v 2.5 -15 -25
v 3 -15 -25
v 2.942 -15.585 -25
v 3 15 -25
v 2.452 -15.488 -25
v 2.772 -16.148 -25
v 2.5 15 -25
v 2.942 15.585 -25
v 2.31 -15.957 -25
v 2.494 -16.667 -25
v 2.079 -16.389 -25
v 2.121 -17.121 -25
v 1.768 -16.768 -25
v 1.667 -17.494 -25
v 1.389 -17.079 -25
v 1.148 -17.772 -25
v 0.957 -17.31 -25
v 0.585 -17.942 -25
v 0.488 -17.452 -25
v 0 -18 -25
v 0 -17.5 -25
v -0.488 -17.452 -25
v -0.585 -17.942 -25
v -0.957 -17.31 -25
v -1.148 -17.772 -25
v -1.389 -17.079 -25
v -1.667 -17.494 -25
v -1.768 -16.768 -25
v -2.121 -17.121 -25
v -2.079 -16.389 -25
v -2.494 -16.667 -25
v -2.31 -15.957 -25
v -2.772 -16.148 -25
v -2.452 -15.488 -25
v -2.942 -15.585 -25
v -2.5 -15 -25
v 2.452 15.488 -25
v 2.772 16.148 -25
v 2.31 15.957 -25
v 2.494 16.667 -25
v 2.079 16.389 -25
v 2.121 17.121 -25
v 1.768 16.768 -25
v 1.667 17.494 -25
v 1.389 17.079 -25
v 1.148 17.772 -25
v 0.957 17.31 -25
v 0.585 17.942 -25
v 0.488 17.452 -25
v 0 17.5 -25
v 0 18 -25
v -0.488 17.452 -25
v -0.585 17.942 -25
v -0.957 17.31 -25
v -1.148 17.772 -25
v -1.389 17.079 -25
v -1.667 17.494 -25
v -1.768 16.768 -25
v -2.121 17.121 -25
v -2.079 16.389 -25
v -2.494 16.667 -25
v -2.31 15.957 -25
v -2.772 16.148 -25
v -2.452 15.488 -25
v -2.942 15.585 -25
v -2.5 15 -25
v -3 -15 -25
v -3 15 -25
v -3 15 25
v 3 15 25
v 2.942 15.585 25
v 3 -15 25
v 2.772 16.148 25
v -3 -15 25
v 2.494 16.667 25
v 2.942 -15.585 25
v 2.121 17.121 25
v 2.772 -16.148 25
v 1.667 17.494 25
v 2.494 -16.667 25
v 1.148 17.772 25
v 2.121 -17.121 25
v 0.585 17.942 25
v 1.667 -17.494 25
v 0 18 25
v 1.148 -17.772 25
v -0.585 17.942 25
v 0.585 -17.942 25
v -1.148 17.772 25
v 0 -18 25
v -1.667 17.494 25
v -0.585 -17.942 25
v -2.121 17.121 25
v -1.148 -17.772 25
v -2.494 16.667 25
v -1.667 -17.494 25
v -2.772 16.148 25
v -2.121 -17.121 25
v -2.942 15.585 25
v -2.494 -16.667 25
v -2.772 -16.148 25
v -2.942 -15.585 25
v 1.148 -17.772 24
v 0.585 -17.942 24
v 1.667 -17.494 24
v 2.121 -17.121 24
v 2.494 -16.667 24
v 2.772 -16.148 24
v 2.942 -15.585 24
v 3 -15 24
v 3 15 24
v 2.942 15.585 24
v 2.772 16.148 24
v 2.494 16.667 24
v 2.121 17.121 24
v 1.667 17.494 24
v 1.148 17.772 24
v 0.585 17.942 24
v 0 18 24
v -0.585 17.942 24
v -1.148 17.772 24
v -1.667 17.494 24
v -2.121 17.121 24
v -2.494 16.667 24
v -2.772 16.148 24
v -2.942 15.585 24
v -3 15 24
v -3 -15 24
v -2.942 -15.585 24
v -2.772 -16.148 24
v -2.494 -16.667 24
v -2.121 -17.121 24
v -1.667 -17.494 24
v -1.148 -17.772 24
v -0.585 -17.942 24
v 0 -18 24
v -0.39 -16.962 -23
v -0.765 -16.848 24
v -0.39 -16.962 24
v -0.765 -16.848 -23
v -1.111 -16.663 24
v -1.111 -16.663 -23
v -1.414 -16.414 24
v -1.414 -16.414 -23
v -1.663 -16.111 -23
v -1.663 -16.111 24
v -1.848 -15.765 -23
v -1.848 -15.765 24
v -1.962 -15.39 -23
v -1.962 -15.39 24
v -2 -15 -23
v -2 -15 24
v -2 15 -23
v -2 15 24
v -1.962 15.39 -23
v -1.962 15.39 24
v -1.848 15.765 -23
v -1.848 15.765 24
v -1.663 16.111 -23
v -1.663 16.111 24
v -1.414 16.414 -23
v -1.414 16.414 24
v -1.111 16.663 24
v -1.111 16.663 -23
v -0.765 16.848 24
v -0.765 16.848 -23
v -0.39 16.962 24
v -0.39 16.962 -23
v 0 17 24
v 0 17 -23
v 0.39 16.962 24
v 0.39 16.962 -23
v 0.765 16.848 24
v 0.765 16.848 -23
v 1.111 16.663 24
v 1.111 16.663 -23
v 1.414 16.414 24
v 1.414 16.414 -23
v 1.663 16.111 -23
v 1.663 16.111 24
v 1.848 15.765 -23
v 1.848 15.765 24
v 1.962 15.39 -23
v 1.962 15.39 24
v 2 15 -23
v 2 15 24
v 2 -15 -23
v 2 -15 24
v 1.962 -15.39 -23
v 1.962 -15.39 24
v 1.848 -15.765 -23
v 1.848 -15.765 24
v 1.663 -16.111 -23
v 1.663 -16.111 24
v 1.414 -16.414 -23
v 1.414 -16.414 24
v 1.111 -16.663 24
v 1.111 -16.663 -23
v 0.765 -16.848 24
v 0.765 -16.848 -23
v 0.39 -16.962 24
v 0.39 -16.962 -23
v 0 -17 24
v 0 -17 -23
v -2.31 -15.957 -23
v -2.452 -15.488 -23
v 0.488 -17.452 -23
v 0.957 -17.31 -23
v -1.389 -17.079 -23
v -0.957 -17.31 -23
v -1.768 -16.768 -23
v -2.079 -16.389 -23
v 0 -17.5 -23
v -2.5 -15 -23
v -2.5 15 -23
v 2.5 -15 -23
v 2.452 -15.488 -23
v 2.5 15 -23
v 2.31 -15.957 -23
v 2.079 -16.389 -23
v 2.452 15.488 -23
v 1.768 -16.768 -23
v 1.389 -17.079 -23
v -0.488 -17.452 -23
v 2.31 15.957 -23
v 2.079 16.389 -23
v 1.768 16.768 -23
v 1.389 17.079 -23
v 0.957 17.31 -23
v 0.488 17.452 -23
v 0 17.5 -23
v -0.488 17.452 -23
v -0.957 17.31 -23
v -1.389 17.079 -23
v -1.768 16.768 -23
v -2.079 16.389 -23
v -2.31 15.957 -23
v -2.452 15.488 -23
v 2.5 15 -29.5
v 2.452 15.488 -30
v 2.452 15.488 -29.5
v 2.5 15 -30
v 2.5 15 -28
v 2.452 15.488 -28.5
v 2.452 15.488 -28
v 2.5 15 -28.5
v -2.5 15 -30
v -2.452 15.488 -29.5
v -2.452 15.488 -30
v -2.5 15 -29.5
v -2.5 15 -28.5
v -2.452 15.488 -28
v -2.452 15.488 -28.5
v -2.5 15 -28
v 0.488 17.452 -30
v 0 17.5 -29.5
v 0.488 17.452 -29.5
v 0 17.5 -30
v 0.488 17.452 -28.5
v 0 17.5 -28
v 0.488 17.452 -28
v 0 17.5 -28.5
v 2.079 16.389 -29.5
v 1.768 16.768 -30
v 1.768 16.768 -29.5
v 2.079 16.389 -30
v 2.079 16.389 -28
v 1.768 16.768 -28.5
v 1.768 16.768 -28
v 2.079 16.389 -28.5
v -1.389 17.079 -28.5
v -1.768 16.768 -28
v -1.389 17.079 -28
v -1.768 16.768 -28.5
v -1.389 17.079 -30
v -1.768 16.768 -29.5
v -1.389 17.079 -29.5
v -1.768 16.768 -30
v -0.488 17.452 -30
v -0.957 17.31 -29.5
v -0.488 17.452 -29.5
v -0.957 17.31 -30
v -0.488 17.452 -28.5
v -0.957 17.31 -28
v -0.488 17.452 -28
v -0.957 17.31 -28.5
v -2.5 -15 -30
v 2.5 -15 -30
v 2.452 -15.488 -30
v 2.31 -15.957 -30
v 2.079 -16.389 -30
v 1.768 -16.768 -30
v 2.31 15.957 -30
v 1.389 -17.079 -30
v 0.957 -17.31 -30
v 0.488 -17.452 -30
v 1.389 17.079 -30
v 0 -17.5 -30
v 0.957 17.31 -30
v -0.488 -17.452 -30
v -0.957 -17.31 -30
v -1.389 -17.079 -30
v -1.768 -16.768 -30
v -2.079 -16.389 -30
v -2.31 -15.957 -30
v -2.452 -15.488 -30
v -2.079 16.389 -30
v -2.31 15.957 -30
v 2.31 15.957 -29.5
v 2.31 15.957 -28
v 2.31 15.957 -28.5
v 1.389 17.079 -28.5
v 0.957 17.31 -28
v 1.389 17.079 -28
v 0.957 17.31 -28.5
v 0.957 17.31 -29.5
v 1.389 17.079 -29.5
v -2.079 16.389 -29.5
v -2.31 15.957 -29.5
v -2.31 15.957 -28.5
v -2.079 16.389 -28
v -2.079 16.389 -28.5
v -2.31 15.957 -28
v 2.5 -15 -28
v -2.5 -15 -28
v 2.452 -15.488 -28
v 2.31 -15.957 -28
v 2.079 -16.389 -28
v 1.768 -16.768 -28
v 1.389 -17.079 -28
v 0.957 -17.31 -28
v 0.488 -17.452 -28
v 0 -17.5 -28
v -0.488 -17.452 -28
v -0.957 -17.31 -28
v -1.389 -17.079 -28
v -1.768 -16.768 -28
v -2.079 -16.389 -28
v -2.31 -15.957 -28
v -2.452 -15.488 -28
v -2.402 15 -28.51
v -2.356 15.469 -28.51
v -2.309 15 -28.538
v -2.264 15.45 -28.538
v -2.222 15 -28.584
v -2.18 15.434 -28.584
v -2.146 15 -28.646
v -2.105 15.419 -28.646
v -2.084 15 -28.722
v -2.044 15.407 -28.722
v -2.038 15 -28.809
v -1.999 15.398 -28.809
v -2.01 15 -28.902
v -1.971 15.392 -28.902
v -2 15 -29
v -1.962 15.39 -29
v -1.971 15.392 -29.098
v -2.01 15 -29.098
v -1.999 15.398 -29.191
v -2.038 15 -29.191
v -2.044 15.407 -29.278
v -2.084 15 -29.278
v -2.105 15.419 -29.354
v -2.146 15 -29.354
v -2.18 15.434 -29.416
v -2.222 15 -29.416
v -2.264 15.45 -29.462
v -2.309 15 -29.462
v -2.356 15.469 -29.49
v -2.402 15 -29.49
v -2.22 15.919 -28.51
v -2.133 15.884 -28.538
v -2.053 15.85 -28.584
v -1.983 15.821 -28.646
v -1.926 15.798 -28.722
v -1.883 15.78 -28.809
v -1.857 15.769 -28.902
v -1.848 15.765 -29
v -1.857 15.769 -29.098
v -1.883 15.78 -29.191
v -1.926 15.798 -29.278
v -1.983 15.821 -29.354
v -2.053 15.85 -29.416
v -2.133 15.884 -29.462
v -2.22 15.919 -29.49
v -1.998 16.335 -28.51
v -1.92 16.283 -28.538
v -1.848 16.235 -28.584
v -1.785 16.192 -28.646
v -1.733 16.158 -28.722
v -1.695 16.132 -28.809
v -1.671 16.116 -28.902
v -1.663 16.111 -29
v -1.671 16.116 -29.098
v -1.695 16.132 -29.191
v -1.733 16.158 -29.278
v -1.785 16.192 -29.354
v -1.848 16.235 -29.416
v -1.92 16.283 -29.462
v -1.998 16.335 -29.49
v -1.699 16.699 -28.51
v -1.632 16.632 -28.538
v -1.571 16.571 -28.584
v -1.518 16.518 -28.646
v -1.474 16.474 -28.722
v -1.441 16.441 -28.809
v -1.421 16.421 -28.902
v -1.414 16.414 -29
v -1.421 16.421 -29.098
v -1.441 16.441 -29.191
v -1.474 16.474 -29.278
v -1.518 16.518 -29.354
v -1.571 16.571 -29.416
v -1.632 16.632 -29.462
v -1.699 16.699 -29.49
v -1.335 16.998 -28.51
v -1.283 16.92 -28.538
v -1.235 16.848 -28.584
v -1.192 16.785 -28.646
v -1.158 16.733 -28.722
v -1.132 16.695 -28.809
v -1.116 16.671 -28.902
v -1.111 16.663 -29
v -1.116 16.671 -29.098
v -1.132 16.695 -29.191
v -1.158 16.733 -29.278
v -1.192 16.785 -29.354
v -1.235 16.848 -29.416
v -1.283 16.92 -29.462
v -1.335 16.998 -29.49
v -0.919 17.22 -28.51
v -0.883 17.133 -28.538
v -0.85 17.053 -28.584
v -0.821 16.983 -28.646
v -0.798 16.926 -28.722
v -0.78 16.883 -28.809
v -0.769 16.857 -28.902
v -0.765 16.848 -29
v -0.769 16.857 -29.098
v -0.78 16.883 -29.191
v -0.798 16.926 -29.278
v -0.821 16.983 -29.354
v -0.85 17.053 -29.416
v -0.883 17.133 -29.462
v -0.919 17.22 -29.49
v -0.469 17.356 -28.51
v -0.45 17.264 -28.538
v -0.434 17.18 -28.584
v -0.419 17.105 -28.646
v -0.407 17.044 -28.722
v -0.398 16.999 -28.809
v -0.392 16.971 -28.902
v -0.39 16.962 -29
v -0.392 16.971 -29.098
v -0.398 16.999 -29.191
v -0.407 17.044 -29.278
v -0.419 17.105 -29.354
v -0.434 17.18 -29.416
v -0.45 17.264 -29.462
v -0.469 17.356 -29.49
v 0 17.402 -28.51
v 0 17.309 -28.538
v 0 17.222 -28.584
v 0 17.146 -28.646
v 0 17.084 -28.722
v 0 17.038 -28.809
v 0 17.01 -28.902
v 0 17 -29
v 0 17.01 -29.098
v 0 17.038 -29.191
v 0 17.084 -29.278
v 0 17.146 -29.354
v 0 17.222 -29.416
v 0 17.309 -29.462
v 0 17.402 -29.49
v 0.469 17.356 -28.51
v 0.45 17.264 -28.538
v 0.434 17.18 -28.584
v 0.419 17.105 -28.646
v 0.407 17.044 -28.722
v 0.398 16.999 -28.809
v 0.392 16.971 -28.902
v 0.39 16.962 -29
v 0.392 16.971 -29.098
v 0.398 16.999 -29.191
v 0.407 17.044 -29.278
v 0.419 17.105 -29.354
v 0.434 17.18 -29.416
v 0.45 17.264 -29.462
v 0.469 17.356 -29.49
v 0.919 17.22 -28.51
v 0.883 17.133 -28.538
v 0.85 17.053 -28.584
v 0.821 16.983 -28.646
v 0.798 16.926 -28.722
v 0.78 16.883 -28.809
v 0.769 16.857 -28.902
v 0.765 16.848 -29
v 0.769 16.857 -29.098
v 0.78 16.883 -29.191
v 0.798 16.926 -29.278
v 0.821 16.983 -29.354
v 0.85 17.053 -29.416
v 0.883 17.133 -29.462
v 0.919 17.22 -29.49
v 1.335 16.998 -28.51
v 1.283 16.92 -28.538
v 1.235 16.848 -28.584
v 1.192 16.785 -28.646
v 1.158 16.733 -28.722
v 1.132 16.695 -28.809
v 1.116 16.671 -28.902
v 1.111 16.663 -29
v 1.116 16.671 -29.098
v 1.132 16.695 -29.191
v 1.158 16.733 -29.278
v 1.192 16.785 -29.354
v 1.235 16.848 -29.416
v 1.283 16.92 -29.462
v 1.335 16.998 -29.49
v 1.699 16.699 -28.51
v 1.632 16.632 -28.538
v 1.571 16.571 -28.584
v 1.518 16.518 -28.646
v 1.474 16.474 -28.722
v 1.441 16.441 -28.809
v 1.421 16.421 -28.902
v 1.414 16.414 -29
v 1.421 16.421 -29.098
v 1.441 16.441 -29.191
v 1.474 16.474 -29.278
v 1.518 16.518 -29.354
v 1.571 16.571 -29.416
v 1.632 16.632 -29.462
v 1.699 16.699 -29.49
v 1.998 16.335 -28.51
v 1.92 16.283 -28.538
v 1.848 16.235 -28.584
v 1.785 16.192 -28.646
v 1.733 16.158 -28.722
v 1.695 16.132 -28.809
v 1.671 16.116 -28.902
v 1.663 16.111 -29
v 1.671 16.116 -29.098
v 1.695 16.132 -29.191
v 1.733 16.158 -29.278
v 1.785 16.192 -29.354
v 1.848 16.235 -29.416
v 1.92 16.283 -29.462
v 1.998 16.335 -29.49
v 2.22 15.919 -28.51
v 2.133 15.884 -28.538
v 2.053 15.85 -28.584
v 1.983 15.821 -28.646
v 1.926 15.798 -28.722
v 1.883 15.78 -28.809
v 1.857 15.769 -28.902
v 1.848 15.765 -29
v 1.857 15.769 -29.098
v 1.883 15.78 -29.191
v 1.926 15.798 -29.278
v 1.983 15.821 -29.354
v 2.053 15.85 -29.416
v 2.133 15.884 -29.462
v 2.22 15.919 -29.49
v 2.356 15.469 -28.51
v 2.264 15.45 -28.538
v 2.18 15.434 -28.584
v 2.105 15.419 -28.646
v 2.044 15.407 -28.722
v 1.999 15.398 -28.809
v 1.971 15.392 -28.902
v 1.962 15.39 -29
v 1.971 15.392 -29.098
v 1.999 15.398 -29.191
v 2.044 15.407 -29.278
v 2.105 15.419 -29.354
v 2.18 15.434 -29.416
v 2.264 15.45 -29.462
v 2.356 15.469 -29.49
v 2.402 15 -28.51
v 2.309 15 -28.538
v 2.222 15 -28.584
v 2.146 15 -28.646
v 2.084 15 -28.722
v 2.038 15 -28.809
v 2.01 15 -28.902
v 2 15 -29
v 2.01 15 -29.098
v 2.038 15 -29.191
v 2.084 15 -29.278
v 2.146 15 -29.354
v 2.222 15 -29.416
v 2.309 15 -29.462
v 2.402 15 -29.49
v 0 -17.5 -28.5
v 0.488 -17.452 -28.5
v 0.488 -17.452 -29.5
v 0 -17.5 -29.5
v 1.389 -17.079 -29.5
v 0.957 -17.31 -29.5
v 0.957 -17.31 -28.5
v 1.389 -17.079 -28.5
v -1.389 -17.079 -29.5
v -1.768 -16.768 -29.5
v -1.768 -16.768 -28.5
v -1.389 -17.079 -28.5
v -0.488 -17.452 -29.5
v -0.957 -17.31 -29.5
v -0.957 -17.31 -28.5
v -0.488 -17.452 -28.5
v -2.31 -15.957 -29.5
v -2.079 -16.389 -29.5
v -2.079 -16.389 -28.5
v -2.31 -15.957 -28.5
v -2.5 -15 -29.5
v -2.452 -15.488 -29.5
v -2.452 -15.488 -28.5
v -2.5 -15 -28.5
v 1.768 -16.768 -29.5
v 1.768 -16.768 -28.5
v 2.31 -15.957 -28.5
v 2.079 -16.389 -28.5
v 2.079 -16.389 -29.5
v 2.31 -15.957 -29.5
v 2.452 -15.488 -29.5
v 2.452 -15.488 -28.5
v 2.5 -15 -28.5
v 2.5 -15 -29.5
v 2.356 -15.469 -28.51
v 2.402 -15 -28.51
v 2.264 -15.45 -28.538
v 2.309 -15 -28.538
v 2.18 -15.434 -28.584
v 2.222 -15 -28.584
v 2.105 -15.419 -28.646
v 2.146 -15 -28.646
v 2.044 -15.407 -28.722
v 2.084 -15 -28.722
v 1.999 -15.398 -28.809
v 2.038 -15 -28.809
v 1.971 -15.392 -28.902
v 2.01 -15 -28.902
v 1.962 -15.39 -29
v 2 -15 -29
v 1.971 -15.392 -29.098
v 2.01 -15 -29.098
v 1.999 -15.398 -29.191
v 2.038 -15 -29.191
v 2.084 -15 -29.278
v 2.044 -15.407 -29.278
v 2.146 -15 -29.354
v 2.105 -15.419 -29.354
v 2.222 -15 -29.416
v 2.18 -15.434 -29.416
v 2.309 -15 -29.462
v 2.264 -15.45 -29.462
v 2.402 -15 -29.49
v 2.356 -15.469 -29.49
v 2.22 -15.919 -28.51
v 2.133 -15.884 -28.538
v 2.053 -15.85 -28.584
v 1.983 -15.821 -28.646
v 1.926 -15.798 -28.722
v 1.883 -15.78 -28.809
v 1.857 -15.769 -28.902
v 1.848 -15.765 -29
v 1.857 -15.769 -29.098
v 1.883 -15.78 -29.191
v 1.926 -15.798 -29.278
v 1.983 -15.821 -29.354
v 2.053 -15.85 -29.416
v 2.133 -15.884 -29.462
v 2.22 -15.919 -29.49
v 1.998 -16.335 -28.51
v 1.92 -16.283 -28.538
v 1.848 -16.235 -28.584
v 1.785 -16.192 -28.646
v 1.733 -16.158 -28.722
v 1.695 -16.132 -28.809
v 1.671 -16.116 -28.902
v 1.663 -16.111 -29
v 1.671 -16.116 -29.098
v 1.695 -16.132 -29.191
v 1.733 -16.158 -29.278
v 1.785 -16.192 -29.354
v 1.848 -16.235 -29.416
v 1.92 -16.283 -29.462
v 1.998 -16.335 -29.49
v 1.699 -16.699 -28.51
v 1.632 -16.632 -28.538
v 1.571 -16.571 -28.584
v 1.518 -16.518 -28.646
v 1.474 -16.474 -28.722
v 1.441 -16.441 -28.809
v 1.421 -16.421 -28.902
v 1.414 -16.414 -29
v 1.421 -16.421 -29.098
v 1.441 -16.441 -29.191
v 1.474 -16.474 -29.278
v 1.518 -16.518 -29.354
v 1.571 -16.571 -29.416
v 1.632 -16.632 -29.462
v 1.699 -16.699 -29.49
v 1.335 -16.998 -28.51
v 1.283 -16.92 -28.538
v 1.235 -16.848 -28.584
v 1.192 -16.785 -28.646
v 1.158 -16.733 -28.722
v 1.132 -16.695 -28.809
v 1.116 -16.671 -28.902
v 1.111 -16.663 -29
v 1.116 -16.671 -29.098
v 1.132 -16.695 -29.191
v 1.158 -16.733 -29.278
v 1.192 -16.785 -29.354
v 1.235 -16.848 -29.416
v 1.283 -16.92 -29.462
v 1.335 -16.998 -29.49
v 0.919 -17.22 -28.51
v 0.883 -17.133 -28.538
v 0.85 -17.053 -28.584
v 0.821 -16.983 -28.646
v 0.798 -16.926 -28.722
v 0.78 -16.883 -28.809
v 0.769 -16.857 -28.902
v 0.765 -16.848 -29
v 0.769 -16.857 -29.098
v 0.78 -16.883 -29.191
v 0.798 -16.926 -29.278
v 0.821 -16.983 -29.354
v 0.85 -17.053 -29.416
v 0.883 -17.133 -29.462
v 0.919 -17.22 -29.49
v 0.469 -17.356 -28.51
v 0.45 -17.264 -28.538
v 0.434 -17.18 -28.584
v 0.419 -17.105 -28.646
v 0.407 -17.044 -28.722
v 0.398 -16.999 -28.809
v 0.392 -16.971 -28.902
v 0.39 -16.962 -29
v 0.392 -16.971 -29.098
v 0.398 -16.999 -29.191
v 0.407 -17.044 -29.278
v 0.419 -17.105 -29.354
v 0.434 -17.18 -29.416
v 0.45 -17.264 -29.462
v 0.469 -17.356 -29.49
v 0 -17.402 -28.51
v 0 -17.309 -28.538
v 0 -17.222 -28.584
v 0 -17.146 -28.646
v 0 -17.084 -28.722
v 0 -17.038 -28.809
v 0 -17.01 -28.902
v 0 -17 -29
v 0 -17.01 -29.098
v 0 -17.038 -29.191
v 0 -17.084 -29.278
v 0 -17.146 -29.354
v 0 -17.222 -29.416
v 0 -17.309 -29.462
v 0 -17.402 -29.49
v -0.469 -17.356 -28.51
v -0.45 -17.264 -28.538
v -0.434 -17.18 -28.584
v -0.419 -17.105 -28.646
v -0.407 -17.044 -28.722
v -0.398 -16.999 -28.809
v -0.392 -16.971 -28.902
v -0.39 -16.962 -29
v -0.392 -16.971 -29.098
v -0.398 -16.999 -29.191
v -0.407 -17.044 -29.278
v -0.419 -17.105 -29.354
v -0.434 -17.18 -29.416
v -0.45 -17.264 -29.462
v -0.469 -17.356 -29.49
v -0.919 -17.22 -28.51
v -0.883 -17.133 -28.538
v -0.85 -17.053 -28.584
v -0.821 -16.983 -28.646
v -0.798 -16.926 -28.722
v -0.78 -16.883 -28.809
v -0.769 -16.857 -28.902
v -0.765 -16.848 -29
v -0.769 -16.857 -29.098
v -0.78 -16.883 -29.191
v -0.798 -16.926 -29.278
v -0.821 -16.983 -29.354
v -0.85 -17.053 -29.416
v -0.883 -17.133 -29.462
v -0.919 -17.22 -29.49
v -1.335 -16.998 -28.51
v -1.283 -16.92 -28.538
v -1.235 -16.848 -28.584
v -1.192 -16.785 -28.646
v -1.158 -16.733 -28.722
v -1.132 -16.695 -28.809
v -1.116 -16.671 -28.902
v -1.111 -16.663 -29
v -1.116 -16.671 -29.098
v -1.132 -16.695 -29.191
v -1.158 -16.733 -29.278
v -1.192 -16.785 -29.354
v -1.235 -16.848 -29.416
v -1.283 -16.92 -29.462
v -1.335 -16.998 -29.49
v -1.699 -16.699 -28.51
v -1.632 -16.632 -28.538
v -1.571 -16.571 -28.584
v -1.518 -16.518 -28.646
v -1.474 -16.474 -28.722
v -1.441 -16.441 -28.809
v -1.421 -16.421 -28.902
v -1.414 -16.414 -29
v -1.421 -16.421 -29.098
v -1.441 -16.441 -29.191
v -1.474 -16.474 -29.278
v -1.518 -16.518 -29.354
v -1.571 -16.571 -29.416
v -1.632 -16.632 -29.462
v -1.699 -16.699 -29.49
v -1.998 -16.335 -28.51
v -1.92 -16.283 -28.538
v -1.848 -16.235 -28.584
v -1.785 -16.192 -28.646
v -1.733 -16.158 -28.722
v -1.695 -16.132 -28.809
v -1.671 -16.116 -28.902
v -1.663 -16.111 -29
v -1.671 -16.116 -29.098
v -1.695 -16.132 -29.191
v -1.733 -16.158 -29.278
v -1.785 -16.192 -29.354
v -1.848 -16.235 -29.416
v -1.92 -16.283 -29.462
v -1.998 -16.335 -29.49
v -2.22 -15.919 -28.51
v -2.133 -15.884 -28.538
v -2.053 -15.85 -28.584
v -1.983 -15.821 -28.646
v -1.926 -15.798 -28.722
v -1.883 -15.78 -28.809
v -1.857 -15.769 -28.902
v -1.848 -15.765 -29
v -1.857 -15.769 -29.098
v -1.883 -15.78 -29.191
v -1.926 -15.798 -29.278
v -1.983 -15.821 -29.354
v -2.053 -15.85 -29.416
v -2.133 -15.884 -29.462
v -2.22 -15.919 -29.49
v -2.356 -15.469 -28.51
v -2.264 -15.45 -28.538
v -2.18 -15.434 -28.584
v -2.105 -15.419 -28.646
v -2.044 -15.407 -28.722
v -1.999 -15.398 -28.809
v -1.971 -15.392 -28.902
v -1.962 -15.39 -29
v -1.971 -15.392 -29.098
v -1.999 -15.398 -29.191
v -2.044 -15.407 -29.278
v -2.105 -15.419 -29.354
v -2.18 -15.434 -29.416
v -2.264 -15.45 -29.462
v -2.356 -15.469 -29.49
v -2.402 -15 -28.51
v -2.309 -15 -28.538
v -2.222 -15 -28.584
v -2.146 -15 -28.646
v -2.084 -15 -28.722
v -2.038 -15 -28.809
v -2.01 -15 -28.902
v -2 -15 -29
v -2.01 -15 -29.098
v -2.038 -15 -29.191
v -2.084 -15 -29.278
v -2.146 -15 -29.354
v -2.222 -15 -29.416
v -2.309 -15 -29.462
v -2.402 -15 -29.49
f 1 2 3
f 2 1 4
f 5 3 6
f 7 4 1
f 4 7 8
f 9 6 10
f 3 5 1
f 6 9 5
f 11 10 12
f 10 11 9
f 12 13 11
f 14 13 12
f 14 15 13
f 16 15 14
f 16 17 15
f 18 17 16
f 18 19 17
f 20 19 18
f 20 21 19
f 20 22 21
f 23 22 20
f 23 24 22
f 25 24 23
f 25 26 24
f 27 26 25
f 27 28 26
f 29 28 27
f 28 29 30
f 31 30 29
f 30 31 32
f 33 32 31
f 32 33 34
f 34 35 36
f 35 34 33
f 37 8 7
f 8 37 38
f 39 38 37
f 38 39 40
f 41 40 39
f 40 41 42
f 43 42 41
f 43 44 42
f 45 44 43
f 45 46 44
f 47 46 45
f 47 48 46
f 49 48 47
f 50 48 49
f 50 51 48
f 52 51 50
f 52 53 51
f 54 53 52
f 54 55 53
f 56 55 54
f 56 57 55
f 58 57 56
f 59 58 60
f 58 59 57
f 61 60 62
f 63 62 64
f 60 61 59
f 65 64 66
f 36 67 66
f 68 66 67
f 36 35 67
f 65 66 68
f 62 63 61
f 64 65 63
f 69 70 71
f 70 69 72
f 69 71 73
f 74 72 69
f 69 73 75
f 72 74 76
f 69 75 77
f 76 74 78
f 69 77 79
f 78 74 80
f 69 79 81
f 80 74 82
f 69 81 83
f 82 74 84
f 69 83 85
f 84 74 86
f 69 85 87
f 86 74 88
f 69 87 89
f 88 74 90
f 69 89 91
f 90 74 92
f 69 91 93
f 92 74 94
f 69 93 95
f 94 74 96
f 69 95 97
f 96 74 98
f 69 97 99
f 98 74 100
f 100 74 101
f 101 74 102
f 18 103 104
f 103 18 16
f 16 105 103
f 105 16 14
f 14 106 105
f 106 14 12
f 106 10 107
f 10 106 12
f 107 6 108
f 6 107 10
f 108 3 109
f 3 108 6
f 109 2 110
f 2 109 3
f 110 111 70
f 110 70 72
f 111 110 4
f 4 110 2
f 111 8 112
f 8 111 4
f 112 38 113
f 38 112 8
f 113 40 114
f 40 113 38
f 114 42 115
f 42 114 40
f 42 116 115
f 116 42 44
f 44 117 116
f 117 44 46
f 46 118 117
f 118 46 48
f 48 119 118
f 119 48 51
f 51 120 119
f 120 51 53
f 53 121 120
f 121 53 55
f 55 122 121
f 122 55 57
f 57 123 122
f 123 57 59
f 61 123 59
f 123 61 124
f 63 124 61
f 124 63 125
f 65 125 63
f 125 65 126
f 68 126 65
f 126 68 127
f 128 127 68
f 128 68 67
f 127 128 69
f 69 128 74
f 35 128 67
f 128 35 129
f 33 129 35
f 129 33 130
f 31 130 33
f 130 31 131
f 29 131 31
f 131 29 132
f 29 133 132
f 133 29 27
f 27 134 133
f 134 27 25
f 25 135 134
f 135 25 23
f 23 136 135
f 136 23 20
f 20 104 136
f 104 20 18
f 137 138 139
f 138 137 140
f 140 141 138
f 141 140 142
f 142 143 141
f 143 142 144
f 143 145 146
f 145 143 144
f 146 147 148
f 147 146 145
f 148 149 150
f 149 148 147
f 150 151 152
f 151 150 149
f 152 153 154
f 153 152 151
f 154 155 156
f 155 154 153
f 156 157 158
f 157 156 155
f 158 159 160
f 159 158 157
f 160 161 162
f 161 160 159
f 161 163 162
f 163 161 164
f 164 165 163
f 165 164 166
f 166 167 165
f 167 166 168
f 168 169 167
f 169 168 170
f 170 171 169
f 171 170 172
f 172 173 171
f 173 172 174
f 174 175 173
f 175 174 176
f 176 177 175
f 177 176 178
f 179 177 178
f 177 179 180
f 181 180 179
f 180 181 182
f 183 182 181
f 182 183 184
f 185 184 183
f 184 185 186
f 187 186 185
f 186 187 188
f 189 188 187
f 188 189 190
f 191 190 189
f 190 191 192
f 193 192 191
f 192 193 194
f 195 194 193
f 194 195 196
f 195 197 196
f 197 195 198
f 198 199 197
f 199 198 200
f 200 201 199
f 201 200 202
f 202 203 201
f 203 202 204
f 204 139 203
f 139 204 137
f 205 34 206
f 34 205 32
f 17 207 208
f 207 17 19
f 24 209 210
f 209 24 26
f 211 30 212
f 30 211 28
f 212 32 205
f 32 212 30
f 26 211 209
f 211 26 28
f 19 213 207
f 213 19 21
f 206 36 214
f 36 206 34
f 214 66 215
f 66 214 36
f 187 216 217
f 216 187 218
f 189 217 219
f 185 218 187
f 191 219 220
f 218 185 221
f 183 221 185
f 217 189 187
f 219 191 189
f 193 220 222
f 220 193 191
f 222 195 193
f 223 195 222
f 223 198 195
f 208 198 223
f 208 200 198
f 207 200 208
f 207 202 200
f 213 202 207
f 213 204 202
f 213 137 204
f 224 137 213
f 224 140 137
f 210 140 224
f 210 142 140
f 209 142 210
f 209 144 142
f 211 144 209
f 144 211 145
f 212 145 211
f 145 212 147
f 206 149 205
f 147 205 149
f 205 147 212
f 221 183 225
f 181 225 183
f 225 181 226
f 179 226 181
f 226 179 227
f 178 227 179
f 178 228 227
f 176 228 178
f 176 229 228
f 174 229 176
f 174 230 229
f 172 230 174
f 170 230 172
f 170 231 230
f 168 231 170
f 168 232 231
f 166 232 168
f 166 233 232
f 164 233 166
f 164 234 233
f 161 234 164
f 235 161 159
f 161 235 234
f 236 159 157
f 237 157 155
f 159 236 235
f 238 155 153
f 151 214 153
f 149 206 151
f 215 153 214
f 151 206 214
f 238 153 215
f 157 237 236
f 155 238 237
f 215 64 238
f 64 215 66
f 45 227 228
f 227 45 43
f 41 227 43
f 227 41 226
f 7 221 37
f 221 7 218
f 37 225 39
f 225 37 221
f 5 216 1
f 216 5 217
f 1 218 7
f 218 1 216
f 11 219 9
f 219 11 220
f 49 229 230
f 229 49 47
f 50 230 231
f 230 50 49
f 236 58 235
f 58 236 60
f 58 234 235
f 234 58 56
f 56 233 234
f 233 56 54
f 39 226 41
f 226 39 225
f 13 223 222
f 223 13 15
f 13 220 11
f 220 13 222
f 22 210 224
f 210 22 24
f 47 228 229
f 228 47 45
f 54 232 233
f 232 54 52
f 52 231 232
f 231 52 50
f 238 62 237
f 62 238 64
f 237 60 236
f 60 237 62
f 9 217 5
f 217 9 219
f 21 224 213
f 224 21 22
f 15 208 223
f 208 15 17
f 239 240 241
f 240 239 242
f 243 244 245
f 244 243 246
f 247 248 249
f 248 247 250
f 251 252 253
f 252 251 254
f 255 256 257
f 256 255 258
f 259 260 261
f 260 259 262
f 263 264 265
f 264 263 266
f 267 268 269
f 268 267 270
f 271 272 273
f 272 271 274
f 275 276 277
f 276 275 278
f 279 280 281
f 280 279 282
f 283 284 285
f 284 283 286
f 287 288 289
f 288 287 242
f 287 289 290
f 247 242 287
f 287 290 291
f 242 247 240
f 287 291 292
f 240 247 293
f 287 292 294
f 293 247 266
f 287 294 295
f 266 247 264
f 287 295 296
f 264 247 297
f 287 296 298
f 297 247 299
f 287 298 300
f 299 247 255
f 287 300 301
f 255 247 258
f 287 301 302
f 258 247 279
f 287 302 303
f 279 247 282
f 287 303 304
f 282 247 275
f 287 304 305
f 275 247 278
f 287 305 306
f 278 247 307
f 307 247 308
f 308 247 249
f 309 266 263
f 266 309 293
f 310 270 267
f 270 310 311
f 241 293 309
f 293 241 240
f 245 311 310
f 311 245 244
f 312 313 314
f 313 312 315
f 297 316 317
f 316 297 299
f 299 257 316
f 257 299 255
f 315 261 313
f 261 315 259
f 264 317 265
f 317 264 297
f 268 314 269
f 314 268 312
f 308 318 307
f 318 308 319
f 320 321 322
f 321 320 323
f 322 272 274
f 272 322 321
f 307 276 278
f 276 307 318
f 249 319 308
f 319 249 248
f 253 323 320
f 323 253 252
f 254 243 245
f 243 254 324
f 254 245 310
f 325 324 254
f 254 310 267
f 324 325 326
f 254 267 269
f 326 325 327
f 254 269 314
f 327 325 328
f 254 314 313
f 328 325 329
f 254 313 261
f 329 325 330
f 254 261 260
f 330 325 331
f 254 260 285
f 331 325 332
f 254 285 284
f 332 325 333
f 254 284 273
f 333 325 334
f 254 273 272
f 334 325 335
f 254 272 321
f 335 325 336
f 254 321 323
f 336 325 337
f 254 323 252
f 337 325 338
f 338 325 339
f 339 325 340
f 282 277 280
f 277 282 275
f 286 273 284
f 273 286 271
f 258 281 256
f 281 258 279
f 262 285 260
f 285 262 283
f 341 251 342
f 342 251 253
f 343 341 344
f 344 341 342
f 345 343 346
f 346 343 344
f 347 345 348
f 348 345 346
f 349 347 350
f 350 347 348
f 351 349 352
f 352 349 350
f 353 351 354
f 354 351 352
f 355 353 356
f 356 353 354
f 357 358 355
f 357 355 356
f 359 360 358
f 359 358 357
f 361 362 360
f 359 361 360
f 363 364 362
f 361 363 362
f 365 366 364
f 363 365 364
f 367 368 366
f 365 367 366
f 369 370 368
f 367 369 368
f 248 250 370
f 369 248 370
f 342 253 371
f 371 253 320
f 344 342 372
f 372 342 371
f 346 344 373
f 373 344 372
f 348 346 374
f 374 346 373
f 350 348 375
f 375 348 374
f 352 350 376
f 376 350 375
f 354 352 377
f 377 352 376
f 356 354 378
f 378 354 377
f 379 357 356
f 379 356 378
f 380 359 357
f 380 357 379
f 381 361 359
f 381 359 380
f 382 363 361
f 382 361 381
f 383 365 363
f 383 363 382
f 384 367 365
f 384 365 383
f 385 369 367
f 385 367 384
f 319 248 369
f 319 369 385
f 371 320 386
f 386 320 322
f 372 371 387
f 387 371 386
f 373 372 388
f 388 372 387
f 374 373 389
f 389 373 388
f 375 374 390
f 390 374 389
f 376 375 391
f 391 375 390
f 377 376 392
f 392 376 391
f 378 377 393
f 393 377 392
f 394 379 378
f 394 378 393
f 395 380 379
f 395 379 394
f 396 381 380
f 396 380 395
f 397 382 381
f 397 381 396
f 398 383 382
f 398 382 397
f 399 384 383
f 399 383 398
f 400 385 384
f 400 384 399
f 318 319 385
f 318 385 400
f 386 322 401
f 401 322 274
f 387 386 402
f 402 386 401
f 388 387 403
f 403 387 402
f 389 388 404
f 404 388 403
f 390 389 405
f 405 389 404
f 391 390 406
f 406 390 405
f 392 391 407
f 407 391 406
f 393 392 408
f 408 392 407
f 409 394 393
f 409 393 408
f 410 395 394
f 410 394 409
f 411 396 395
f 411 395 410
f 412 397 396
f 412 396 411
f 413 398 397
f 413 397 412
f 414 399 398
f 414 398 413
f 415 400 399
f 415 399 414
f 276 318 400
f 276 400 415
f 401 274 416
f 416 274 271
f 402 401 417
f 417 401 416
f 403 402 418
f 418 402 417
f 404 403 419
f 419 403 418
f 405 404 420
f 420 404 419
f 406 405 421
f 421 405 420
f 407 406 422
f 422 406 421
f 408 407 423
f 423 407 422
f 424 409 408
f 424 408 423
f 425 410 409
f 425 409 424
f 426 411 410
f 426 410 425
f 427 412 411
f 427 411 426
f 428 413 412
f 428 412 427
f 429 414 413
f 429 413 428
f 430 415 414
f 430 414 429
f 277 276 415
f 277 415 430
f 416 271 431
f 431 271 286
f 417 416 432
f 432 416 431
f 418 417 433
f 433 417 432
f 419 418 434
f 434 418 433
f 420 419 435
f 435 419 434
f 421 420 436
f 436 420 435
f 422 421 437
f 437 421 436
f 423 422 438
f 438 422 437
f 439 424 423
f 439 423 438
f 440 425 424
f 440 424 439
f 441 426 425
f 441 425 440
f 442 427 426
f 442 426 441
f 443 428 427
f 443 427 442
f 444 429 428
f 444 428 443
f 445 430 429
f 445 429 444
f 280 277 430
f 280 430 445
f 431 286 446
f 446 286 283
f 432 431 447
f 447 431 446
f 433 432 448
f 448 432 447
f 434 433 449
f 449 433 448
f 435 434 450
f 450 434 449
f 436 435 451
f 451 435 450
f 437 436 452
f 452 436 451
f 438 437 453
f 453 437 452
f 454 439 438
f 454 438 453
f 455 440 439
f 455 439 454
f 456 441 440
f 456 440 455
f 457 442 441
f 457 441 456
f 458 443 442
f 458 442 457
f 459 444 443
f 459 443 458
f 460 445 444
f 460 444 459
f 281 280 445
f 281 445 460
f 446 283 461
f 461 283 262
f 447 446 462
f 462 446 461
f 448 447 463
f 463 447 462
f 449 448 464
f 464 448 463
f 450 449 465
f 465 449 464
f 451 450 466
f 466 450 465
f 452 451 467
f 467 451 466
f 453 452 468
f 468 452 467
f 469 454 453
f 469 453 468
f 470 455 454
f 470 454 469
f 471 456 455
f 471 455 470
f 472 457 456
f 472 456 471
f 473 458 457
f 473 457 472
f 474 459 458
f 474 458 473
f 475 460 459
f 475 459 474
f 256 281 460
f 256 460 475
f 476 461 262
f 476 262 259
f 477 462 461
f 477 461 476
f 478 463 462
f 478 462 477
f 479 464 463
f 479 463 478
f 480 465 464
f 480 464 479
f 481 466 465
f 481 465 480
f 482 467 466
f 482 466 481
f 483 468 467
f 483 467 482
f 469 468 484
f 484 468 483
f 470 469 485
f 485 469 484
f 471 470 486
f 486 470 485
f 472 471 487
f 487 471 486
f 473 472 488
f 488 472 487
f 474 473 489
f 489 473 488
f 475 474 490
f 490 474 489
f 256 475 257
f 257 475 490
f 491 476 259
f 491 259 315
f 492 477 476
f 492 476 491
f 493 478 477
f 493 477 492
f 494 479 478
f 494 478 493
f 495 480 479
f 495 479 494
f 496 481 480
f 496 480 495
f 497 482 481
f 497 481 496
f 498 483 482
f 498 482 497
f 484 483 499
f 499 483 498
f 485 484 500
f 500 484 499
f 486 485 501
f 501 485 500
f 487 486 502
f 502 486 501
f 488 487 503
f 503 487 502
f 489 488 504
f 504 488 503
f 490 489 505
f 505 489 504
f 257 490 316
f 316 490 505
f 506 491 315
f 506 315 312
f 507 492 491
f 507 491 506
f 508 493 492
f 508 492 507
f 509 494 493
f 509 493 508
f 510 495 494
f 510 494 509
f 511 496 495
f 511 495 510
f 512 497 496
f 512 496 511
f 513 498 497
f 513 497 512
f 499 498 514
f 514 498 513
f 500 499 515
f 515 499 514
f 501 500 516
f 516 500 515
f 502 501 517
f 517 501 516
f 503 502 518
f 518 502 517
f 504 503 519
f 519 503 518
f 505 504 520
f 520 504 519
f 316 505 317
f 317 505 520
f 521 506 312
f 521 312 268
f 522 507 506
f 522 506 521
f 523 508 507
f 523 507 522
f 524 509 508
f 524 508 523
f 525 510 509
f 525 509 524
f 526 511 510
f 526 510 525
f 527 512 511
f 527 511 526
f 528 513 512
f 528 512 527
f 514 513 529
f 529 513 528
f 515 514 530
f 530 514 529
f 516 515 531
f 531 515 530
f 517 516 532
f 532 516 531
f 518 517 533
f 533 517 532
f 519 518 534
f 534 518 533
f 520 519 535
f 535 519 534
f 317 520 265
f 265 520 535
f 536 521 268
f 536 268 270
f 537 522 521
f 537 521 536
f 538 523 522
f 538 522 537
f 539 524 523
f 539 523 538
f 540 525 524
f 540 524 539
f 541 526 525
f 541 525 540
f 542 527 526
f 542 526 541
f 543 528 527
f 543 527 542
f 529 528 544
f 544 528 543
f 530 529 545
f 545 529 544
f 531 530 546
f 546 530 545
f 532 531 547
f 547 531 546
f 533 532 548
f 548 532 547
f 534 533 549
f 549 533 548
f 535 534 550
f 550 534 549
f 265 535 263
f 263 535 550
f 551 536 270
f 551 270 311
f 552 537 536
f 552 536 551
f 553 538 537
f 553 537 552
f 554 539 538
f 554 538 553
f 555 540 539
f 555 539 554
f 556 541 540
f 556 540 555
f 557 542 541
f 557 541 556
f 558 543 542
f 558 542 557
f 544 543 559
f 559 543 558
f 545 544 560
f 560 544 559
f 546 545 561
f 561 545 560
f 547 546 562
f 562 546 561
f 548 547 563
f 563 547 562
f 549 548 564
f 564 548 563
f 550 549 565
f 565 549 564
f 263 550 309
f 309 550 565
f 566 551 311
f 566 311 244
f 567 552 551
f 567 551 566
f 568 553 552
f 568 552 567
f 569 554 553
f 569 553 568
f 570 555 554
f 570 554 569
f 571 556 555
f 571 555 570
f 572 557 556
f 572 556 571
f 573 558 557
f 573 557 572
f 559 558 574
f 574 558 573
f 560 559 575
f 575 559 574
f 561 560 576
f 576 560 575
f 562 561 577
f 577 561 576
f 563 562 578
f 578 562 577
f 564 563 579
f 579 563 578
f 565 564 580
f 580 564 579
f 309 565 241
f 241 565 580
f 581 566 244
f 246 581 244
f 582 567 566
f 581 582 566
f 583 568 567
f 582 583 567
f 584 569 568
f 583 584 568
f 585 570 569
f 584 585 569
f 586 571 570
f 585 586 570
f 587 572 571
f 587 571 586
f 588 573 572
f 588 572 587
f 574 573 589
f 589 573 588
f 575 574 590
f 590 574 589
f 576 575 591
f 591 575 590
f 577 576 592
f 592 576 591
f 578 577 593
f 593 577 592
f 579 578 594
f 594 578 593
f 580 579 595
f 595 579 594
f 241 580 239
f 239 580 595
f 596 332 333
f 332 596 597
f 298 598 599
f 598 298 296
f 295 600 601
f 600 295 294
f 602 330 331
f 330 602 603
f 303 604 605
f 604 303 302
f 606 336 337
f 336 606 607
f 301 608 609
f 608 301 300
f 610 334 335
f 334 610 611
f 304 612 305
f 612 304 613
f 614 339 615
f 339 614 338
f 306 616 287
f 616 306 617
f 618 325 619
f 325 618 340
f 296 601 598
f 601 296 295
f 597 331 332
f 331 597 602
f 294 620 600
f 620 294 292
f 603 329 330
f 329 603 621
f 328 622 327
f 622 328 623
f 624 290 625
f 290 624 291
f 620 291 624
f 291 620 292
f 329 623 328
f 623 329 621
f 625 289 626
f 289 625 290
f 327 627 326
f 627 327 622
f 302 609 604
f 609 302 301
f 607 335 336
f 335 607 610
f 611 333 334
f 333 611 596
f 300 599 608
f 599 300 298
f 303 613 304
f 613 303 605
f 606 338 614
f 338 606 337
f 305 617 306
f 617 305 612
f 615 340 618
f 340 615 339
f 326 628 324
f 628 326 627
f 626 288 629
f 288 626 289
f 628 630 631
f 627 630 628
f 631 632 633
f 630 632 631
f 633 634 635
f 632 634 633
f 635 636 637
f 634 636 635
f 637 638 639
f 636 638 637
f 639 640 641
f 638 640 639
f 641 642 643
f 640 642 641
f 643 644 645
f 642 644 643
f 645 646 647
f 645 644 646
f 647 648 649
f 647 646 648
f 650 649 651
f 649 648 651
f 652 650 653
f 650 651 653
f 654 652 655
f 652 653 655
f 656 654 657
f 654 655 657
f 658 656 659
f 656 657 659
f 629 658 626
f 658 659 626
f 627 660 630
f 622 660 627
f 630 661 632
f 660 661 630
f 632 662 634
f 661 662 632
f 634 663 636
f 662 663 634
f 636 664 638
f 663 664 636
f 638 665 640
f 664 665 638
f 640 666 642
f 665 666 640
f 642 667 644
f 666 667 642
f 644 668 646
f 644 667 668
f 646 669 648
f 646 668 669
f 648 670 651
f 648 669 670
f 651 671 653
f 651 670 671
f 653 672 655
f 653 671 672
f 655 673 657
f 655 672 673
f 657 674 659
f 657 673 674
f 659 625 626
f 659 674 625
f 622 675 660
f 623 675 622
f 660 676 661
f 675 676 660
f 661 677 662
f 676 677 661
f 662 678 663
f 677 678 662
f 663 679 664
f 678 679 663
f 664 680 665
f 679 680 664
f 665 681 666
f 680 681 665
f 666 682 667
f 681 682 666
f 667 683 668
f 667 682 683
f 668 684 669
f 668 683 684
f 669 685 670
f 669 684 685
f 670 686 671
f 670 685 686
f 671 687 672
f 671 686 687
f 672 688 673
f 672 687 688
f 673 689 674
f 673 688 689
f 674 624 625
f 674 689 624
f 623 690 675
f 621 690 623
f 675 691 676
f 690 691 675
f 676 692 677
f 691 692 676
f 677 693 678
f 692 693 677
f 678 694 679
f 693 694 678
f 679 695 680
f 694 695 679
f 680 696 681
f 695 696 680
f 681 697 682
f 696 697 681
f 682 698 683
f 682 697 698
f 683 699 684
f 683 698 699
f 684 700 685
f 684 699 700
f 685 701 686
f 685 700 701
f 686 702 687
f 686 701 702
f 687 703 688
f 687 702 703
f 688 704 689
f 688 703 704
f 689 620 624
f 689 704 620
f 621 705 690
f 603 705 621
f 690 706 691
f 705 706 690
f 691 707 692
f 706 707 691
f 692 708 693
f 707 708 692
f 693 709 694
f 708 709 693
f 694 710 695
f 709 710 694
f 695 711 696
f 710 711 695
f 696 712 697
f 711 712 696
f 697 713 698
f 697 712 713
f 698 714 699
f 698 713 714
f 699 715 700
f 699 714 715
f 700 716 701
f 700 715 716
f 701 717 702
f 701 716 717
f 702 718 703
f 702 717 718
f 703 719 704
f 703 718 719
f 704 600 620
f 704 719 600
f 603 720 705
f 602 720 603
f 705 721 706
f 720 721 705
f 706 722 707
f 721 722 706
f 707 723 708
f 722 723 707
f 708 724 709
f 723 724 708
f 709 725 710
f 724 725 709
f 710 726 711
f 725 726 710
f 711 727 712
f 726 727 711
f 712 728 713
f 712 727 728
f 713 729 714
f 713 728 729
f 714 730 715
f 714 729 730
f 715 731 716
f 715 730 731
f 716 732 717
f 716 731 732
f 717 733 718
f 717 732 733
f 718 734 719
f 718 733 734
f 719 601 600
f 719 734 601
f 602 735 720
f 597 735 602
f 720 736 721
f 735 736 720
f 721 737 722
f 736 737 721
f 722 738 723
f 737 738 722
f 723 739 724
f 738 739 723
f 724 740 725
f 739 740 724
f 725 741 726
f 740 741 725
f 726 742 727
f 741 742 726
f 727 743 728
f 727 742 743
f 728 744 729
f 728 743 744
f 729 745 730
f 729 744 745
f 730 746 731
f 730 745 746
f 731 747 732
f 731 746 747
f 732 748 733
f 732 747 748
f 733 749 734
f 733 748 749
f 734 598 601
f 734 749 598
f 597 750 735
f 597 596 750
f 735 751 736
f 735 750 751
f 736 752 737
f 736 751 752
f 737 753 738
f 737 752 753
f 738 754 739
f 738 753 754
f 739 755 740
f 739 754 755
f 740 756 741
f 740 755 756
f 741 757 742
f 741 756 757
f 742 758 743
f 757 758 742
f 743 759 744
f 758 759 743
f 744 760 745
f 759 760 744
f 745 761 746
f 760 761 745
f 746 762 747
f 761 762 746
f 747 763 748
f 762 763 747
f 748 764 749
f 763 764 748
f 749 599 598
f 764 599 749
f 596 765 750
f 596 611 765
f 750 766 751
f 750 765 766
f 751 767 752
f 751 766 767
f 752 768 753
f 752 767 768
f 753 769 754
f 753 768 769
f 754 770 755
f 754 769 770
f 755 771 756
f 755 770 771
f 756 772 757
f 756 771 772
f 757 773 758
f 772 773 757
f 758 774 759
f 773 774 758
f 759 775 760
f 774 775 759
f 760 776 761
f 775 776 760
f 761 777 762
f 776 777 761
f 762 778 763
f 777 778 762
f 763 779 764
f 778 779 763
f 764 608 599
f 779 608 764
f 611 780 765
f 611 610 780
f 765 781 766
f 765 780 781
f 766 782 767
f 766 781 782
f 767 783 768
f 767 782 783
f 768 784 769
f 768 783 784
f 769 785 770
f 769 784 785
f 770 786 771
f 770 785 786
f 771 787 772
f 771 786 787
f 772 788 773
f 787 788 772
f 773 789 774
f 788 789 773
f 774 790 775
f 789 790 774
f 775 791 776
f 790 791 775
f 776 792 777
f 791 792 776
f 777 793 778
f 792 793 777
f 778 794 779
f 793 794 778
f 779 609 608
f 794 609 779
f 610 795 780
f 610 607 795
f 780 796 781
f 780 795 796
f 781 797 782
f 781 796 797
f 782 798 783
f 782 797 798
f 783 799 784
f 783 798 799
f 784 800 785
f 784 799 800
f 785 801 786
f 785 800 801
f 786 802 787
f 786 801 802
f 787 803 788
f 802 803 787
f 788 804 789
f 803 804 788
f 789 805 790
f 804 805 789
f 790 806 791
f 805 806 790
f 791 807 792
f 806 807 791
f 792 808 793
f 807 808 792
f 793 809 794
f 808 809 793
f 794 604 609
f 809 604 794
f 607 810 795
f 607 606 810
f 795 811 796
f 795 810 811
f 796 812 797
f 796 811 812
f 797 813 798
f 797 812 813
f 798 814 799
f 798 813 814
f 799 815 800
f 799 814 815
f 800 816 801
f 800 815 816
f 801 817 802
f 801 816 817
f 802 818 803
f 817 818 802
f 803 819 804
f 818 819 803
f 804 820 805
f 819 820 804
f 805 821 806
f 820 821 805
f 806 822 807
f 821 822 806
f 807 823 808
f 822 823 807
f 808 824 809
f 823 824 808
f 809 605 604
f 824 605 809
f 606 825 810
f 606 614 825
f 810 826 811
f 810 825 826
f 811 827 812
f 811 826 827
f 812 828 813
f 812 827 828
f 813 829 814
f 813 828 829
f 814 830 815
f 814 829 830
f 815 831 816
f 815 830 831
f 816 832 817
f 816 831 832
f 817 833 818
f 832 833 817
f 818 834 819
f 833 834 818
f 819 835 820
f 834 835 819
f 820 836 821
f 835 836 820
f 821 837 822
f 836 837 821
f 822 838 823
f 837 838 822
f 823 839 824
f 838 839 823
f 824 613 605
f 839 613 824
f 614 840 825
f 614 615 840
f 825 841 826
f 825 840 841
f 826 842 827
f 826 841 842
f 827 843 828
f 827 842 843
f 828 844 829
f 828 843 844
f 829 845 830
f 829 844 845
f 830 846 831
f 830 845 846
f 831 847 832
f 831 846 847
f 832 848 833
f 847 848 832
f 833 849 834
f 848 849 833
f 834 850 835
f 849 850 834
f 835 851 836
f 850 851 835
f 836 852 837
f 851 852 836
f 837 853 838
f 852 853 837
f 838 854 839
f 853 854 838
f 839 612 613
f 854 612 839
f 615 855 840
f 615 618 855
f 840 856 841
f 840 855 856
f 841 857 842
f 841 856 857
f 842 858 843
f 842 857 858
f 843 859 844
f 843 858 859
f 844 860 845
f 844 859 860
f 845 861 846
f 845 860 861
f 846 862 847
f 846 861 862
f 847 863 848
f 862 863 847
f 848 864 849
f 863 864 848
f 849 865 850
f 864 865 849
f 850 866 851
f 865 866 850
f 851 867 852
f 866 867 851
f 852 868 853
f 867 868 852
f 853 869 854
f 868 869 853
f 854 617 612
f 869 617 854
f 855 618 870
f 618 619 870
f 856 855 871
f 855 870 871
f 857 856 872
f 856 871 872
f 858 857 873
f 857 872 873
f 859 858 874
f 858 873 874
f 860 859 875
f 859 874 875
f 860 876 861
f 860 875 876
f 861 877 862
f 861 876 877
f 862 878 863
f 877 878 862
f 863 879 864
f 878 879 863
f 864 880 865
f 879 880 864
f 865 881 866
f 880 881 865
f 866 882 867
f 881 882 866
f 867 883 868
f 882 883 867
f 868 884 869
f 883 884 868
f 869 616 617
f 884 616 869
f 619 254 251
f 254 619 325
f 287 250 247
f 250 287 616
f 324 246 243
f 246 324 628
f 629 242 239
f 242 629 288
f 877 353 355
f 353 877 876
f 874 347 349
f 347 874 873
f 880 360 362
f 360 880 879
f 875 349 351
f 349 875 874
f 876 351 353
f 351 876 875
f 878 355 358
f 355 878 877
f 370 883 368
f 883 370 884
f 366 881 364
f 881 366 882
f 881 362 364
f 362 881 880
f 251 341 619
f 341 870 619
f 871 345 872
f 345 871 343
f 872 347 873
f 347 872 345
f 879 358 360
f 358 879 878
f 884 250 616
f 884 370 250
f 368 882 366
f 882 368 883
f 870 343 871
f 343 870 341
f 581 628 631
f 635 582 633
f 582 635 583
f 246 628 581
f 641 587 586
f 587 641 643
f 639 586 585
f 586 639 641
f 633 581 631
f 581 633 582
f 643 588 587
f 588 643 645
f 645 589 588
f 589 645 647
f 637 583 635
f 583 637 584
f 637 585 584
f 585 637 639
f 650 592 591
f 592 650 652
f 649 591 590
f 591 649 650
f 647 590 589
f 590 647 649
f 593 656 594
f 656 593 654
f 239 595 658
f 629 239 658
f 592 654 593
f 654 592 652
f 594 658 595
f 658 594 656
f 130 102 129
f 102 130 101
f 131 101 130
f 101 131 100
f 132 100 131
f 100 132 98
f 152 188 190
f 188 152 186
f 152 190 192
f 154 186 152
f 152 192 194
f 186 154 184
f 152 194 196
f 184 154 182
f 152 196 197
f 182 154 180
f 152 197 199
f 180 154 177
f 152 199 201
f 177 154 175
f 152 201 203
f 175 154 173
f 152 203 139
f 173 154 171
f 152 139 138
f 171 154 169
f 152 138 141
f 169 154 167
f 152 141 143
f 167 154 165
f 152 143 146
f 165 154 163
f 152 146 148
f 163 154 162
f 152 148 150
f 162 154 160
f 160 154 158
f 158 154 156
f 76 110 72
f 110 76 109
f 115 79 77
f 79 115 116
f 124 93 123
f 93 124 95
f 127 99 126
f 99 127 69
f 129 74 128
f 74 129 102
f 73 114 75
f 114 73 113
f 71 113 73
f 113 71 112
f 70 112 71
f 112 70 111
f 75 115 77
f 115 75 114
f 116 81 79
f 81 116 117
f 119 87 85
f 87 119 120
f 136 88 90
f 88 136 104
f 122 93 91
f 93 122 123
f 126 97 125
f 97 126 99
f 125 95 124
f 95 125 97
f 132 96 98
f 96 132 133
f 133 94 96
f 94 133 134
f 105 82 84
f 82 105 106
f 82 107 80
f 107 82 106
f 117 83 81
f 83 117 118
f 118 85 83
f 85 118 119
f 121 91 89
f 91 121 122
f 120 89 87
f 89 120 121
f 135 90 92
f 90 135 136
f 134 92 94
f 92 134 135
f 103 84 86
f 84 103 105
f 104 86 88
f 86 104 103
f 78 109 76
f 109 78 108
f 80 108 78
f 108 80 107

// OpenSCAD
$fn=32;

W = 50; // Ширина корпуса
H = 30; // Высота корпуса
T = 6;  // Толщина корпуса

wp = 1.0; // Толщина стенок корпуса

// Пробка
Pt = 2; // Толщина пробки

difference() {
  linear_extrude(height = W, scale = 1.0, center=true) {
    difference() {
      hull() {
        translate([0,-H/2,0]) circle(d=T);
        translate([0, H/2,0]) circle(d=T);
      }

      hull() {
        translate([0,-15,0]) circle(d=T-wp*2);
        translate([0, 15,0]) circle(d=T-wp*2);
      }
    }
    /*offset(3) {
    scale([0.001,1,1]) square(30, center=true);
    }*/
  }

  translate([0, 0, -W/2 + Pt/2 - 0.25]) linear_extrude(height = Pt + 0.5, scale = 1.0, center=true) {
    hull() {
      translate([0,-H/2]) circle(d=T-wp);
      translate([0, H/2]) circle(d=T-wp);
    }
  }

}

translate([0, 0, W/2-wp/2]) linear_extrude(height = wp, scale = 1.0, center=true) {
  hull(){
    translate([0,-H/2]) circle(d=T);
    translate([0, H/2]) circle(d=T);
  }
}

offset = 5.0;

/*%translate([0, 0, -W/2 + Pt/2 - offset]) linear_extrude(height = Pt, scale = 1.0, center=true) {
  hull() {
    translate([0,-H/2]) circle(d=T-wp);
    translate([0, H/2]) circle(d=T-wp);
  }
}*/

pdi = 1.0;  // Диаметр резинового уплотнителя.

/*hull()*/{


  // Пробка
  translate([0, 0, -W/2 + Pt/2 - offset]) {

    translate([0, H/2, 0]) {
      difference() {
        cylinder(d = T-wp, h=Pt, center=true);
        rotate_extrude() {
          translate([T/2 - pdi/2, 0, 0]) circle(d = pdi);
        }
      }
    }

    translate([0,-H/2, 0]) {
      difference() {
        cylinder(d = T-wp, h=Pt, center=true);
        rotate_extrude() {
          translate([T/2 - pdi/2, 0, 0]) circle(d = pdi);
        }
      }
    }

    difference() {
      cube([T-wp, H, Pt], center=true);
      rotate([90, 0, 0]) {
        translate([-T/2+wp/2, 0, 0]) cylinder(d=pdi, h=H, center=true);
      }
      rotate([90, 0, 0]) {
        translate([ T/2-wp/2, 0, 0]) cylinder(d=pdi, h=H, center=true);
      }

    }

  }

}
